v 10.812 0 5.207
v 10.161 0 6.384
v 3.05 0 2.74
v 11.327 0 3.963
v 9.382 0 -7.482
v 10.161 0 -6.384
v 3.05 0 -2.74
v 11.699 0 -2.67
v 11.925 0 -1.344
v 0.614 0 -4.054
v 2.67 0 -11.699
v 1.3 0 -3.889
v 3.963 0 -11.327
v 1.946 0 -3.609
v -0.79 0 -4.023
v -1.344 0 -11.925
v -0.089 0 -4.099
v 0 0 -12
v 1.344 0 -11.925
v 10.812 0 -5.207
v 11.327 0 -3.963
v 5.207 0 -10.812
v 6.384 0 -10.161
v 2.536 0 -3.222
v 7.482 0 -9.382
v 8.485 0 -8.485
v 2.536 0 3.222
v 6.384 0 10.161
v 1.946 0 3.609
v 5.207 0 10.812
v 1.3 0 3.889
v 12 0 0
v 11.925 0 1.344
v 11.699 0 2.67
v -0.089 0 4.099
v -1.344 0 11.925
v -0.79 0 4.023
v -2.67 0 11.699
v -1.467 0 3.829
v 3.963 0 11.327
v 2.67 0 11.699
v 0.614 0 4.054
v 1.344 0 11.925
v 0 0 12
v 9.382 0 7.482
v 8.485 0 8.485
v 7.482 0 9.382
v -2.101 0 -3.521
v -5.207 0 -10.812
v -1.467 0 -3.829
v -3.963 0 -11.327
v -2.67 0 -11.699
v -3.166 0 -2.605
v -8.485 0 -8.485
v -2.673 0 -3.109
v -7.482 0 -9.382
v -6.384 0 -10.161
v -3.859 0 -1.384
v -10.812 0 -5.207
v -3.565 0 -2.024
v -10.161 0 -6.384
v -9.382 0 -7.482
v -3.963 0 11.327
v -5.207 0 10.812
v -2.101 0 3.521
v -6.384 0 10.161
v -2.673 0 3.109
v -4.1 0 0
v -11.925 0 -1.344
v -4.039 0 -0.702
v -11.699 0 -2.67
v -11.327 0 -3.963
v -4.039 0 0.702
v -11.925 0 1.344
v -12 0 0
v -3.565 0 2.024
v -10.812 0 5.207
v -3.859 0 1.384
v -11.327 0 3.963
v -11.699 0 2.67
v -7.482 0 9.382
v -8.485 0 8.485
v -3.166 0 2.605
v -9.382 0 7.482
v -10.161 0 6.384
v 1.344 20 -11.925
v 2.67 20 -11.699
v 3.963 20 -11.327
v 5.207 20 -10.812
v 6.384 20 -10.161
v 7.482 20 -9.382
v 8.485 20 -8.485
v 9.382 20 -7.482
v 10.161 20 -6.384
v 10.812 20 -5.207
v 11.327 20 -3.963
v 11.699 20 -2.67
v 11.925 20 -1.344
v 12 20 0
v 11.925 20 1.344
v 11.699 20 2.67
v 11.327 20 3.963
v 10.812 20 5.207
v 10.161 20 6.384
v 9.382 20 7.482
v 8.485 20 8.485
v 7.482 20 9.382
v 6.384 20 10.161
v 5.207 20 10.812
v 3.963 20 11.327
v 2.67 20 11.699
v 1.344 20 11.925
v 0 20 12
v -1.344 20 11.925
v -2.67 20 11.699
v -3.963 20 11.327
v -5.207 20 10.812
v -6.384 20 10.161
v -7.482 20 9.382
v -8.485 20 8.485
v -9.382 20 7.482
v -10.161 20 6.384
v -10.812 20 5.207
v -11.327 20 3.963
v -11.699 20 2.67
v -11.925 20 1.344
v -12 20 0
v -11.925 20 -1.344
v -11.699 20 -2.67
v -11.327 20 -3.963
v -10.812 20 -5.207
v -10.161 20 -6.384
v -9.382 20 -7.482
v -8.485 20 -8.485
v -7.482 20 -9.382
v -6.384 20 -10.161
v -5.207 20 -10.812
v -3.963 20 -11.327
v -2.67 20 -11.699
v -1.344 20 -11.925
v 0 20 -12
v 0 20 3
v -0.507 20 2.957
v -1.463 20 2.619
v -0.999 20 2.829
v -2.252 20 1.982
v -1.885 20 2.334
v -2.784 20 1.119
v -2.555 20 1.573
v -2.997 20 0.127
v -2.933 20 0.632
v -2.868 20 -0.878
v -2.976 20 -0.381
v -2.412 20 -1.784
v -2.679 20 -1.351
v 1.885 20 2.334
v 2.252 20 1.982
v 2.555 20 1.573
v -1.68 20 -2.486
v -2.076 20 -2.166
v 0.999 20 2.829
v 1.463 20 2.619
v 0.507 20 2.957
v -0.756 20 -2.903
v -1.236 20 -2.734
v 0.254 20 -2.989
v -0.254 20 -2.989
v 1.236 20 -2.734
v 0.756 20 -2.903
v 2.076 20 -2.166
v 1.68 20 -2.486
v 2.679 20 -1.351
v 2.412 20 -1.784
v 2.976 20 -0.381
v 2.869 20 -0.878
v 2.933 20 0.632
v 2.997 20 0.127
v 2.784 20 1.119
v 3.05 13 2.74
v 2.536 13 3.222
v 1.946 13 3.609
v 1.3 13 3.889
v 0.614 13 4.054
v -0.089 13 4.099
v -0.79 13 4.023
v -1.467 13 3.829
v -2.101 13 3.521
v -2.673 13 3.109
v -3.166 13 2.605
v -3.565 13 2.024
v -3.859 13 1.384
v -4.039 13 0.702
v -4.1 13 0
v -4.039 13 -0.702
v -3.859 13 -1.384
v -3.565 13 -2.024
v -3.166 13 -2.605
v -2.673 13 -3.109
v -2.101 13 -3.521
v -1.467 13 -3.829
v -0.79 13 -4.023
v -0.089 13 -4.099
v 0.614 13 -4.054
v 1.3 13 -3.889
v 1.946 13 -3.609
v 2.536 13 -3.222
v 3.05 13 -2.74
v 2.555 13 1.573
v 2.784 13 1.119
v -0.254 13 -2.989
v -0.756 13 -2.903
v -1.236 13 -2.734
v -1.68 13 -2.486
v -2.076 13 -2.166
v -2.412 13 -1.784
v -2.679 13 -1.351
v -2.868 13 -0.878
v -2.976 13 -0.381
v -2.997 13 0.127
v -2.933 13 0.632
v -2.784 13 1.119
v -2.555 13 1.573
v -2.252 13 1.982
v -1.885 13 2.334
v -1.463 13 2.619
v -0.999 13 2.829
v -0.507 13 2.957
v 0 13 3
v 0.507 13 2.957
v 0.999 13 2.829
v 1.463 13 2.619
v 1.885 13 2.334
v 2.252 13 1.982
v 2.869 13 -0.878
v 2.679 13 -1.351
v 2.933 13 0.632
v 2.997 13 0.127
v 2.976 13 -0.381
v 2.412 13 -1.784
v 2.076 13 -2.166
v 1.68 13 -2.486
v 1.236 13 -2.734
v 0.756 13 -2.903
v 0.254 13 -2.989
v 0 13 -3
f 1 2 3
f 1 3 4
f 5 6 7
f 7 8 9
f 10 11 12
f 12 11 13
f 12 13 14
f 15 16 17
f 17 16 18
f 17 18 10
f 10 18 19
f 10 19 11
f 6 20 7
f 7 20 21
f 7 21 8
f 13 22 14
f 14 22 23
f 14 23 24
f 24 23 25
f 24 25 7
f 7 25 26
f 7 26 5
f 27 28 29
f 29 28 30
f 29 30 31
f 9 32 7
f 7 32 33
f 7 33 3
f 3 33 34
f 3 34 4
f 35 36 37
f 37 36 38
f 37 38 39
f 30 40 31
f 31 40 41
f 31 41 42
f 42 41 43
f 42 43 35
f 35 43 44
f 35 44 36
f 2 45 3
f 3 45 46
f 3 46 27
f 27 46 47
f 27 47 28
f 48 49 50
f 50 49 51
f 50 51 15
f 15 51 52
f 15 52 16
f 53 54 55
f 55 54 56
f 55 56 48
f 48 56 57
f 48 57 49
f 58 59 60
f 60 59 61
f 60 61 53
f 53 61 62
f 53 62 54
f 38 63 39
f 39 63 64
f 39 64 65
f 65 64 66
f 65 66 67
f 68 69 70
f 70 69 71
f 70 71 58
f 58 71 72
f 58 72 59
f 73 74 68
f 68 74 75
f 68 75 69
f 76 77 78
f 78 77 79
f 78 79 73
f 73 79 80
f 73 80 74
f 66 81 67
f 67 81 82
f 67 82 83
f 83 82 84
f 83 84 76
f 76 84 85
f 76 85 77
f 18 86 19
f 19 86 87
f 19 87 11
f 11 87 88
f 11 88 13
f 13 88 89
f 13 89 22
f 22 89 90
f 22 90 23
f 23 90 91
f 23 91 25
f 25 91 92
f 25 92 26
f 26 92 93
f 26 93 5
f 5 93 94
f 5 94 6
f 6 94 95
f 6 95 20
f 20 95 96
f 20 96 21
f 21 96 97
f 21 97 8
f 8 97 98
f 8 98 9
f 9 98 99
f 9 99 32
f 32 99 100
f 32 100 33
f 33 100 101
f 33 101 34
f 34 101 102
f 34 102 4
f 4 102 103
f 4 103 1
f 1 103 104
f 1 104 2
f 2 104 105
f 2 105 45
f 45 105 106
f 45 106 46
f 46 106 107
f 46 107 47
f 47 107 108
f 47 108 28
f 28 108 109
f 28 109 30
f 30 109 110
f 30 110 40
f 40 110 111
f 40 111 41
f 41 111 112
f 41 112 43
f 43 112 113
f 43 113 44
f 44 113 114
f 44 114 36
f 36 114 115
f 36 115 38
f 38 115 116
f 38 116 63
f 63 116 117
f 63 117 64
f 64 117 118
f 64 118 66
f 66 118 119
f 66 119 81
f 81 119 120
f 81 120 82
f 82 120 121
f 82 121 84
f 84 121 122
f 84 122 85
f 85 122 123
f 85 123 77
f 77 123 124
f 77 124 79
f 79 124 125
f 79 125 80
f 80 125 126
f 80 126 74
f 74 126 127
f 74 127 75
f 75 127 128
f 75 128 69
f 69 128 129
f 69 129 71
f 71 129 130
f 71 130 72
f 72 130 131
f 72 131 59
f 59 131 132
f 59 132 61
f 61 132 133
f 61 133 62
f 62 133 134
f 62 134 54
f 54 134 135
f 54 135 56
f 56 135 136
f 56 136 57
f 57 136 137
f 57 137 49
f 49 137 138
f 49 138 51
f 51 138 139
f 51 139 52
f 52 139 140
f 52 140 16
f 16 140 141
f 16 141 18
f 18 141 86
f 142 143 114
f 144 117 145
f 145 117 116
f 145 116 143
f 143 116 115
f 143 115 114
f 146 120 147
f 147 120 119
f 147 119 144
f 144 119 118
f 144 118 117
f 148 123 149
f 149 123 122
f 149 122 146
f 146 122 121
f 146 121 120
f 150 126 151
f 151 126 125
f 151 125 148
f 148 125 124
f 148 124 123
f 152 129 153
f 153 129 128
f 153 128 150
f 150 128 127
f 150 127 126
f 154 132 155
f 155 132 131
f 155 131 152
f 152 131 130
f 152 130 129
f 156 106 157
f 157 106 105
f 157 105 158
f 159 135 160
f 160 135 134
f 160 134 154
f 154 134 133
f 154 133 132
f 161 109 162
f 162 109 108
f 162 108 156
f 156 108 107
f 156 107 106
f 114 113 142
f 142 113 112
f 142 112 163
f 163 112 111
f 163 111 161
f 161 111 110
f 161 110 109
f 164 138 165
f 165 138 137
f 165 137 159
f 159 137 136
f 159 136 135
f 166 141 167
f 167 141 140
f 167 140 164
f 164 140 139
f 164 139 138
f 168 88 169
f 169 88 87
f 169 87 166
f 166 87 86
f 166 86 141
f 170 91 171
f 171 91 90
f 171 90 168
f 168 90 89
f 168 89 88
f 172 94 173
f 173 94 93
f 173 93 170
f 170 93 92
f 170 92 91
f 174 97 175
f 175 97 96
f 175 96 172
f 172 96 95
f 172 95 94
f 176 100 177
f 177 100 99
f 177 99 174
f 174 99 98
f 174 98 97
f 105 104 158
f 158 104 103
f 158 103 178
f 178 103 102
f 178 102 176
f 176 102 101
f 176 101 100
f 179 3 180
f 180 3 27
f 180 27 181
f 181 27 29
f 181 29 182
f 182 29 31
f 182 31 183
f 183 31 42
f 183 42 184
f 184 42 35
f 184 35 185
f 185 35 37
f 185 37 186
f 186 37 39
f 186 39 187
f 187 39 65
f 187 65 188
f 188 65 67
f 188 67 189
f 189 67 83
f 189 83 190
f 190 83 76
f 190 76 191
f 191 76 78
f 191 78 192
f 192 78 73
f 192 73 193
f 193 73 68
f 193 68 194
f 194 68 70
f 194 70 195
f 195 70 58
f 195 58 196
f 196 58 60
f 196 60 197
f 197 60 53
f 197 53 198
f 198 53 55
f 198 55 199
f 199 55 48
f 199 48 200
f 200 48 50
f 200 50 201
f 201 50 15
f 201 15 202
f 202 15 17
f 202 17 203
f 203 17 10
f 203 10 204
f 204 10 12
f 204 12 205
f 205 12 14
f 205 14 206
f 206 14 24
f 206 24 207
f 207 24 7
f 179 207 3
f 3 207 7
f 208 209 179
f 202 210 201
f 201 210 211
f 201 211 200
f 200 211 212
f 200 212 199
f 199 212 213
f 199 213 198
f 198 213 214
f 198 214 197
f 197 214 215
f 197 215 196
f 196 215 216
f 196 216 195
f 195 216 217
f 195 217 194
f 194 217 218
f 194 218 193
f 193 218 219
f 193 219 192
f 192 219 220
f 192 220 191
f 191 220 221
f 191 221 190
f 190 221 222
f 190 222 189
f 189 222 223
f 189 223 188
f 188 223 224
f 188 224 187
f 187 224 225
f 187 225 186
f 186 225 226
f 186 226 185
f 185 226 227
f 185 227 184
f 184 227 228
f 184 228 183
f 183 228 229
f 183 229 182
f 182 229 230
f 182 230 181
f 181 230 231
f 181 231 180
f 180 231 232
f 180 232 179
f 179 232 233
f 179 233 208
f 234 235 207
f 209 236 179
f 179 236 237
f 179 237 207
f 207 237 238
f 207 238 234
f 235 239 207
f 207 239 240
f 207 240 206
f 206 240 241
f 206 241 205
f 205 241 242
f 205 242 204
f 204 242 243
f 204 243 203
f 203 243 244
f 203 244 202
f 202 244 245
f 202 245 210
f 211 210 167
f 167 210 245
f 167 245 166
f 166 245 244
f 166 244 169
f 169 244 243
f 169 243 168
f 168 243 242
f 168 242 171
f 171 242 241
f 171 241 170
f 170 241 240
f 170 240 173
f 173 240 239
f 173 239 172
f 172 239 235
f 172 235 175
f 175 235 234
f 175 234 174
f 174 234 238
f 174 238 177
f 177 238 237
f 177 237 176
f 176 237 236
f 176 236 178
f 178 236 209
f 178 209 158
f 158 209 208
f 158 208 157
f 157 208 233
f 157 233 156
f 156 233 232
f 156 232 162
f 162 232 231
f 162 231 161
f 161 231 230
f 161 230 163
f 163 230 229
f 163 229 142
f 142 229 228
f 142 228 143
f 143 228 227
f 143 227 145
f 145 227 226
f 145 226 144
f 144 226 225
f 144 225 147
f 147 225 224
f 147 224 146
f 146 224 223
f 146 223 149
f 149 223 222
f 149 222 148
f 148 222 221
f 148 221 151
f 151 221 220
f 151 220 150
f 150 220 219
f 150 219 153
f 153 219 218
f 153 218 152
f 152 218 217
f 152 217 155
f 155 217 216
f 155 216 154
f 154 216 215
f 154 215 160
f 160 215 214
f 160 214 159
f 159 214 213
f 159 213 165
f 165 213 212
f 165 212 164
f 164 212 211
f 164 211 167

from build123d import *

# Parameters (mm, degrees)
SKETCH1_R           = 12
BOSS_EXTRUDE1_DEPTH = 20
CUT_EXTRUDE1_DEPTH  = 13
SKETCH3_R           = 3
CUT_EXTRUDE2_DEPTH  = 13


with BuildPart() as part:
    # Sketch1 → Boss-Extrude1 (new body)
    with BuildSketch(Plane(origin=(0, 0, 0), x_dir=(1, 0, 0), z_dir=(0, 1, 0))):
        with Locations(Location((0, 0, 0), (0, 0, 270))):
            Circle(SKETCH1_R)
    extrude(amount=BOSS_EXTRUDE1_DEPTH)

    # Sketch2 → Cut-Extrude1 (cut)
    with BuildSketch(Plane.XZ):
        with BuildLine():
            Line((3.05, 2.739981752), (3.05, -2.739981752))
            ThreePointArc((3.05, -2.739981752), (-4.1, 0), (3.05, 2.739981752))
        make_face()
    extrude(amount=-CUT_EXTRUDE1_DEPTH, mode=Mode.SUBTRACT)

    # Sketch3 → Cut-Extrude2 (cut)
    with BuildSketch(Plane(origin=(0, 20, 0), x_dir=(1, 0, 0), z_dir=(0, 1, 0))):
        with Locations(Location((0, 0, 0), (0, 0, 270))):
            Circle(SKETCH3_R)
    extrude(amount=-CUT_EXTRUDE2_DEPTH, mode=Mode.SUBTRACT)


solid = part.part
